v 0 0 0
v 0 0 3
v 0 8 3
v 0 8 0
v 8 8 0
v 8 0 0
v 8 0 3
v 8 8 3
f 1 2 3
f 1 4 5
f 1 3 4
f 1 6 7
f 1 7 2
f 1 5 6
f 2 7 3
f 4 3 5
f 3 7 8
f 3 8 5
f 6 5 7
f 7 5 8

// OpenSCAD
/* Warning, this is a very basic generator with a lot of approximation 
input data : [B1QFN, M4A, 8x8x3mm, 52, , C, C04-01055C]
generated by com.zoubworld.electronics.cad.model3d.Basic
Date : Sun Feb 15 10:50:49 CET 2026
*/

//body
color("black")
translate([0,0,0])
cube([8.0,8.0,3.0], center=false);
